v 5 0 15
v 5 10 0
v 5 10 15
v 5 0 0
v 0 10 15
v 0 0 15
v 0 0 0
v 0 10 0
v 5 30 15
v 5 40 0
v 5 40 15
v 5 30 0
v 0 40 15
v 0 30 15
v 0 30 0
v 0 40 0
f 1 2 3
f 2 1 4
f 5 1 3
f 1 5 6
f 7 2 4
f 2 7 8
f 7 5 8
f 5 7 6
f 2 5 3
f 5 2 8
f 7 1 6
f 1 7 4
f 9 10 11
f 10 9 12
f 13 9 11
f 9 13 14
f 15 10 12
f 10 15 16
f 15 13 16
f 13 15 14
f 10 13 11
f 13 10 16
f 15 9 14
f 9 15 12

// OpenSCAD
$fn=100;

cube( [5, 10, 15]);
translate([0, 30, 0])
cube( [5, 10, 15]);
